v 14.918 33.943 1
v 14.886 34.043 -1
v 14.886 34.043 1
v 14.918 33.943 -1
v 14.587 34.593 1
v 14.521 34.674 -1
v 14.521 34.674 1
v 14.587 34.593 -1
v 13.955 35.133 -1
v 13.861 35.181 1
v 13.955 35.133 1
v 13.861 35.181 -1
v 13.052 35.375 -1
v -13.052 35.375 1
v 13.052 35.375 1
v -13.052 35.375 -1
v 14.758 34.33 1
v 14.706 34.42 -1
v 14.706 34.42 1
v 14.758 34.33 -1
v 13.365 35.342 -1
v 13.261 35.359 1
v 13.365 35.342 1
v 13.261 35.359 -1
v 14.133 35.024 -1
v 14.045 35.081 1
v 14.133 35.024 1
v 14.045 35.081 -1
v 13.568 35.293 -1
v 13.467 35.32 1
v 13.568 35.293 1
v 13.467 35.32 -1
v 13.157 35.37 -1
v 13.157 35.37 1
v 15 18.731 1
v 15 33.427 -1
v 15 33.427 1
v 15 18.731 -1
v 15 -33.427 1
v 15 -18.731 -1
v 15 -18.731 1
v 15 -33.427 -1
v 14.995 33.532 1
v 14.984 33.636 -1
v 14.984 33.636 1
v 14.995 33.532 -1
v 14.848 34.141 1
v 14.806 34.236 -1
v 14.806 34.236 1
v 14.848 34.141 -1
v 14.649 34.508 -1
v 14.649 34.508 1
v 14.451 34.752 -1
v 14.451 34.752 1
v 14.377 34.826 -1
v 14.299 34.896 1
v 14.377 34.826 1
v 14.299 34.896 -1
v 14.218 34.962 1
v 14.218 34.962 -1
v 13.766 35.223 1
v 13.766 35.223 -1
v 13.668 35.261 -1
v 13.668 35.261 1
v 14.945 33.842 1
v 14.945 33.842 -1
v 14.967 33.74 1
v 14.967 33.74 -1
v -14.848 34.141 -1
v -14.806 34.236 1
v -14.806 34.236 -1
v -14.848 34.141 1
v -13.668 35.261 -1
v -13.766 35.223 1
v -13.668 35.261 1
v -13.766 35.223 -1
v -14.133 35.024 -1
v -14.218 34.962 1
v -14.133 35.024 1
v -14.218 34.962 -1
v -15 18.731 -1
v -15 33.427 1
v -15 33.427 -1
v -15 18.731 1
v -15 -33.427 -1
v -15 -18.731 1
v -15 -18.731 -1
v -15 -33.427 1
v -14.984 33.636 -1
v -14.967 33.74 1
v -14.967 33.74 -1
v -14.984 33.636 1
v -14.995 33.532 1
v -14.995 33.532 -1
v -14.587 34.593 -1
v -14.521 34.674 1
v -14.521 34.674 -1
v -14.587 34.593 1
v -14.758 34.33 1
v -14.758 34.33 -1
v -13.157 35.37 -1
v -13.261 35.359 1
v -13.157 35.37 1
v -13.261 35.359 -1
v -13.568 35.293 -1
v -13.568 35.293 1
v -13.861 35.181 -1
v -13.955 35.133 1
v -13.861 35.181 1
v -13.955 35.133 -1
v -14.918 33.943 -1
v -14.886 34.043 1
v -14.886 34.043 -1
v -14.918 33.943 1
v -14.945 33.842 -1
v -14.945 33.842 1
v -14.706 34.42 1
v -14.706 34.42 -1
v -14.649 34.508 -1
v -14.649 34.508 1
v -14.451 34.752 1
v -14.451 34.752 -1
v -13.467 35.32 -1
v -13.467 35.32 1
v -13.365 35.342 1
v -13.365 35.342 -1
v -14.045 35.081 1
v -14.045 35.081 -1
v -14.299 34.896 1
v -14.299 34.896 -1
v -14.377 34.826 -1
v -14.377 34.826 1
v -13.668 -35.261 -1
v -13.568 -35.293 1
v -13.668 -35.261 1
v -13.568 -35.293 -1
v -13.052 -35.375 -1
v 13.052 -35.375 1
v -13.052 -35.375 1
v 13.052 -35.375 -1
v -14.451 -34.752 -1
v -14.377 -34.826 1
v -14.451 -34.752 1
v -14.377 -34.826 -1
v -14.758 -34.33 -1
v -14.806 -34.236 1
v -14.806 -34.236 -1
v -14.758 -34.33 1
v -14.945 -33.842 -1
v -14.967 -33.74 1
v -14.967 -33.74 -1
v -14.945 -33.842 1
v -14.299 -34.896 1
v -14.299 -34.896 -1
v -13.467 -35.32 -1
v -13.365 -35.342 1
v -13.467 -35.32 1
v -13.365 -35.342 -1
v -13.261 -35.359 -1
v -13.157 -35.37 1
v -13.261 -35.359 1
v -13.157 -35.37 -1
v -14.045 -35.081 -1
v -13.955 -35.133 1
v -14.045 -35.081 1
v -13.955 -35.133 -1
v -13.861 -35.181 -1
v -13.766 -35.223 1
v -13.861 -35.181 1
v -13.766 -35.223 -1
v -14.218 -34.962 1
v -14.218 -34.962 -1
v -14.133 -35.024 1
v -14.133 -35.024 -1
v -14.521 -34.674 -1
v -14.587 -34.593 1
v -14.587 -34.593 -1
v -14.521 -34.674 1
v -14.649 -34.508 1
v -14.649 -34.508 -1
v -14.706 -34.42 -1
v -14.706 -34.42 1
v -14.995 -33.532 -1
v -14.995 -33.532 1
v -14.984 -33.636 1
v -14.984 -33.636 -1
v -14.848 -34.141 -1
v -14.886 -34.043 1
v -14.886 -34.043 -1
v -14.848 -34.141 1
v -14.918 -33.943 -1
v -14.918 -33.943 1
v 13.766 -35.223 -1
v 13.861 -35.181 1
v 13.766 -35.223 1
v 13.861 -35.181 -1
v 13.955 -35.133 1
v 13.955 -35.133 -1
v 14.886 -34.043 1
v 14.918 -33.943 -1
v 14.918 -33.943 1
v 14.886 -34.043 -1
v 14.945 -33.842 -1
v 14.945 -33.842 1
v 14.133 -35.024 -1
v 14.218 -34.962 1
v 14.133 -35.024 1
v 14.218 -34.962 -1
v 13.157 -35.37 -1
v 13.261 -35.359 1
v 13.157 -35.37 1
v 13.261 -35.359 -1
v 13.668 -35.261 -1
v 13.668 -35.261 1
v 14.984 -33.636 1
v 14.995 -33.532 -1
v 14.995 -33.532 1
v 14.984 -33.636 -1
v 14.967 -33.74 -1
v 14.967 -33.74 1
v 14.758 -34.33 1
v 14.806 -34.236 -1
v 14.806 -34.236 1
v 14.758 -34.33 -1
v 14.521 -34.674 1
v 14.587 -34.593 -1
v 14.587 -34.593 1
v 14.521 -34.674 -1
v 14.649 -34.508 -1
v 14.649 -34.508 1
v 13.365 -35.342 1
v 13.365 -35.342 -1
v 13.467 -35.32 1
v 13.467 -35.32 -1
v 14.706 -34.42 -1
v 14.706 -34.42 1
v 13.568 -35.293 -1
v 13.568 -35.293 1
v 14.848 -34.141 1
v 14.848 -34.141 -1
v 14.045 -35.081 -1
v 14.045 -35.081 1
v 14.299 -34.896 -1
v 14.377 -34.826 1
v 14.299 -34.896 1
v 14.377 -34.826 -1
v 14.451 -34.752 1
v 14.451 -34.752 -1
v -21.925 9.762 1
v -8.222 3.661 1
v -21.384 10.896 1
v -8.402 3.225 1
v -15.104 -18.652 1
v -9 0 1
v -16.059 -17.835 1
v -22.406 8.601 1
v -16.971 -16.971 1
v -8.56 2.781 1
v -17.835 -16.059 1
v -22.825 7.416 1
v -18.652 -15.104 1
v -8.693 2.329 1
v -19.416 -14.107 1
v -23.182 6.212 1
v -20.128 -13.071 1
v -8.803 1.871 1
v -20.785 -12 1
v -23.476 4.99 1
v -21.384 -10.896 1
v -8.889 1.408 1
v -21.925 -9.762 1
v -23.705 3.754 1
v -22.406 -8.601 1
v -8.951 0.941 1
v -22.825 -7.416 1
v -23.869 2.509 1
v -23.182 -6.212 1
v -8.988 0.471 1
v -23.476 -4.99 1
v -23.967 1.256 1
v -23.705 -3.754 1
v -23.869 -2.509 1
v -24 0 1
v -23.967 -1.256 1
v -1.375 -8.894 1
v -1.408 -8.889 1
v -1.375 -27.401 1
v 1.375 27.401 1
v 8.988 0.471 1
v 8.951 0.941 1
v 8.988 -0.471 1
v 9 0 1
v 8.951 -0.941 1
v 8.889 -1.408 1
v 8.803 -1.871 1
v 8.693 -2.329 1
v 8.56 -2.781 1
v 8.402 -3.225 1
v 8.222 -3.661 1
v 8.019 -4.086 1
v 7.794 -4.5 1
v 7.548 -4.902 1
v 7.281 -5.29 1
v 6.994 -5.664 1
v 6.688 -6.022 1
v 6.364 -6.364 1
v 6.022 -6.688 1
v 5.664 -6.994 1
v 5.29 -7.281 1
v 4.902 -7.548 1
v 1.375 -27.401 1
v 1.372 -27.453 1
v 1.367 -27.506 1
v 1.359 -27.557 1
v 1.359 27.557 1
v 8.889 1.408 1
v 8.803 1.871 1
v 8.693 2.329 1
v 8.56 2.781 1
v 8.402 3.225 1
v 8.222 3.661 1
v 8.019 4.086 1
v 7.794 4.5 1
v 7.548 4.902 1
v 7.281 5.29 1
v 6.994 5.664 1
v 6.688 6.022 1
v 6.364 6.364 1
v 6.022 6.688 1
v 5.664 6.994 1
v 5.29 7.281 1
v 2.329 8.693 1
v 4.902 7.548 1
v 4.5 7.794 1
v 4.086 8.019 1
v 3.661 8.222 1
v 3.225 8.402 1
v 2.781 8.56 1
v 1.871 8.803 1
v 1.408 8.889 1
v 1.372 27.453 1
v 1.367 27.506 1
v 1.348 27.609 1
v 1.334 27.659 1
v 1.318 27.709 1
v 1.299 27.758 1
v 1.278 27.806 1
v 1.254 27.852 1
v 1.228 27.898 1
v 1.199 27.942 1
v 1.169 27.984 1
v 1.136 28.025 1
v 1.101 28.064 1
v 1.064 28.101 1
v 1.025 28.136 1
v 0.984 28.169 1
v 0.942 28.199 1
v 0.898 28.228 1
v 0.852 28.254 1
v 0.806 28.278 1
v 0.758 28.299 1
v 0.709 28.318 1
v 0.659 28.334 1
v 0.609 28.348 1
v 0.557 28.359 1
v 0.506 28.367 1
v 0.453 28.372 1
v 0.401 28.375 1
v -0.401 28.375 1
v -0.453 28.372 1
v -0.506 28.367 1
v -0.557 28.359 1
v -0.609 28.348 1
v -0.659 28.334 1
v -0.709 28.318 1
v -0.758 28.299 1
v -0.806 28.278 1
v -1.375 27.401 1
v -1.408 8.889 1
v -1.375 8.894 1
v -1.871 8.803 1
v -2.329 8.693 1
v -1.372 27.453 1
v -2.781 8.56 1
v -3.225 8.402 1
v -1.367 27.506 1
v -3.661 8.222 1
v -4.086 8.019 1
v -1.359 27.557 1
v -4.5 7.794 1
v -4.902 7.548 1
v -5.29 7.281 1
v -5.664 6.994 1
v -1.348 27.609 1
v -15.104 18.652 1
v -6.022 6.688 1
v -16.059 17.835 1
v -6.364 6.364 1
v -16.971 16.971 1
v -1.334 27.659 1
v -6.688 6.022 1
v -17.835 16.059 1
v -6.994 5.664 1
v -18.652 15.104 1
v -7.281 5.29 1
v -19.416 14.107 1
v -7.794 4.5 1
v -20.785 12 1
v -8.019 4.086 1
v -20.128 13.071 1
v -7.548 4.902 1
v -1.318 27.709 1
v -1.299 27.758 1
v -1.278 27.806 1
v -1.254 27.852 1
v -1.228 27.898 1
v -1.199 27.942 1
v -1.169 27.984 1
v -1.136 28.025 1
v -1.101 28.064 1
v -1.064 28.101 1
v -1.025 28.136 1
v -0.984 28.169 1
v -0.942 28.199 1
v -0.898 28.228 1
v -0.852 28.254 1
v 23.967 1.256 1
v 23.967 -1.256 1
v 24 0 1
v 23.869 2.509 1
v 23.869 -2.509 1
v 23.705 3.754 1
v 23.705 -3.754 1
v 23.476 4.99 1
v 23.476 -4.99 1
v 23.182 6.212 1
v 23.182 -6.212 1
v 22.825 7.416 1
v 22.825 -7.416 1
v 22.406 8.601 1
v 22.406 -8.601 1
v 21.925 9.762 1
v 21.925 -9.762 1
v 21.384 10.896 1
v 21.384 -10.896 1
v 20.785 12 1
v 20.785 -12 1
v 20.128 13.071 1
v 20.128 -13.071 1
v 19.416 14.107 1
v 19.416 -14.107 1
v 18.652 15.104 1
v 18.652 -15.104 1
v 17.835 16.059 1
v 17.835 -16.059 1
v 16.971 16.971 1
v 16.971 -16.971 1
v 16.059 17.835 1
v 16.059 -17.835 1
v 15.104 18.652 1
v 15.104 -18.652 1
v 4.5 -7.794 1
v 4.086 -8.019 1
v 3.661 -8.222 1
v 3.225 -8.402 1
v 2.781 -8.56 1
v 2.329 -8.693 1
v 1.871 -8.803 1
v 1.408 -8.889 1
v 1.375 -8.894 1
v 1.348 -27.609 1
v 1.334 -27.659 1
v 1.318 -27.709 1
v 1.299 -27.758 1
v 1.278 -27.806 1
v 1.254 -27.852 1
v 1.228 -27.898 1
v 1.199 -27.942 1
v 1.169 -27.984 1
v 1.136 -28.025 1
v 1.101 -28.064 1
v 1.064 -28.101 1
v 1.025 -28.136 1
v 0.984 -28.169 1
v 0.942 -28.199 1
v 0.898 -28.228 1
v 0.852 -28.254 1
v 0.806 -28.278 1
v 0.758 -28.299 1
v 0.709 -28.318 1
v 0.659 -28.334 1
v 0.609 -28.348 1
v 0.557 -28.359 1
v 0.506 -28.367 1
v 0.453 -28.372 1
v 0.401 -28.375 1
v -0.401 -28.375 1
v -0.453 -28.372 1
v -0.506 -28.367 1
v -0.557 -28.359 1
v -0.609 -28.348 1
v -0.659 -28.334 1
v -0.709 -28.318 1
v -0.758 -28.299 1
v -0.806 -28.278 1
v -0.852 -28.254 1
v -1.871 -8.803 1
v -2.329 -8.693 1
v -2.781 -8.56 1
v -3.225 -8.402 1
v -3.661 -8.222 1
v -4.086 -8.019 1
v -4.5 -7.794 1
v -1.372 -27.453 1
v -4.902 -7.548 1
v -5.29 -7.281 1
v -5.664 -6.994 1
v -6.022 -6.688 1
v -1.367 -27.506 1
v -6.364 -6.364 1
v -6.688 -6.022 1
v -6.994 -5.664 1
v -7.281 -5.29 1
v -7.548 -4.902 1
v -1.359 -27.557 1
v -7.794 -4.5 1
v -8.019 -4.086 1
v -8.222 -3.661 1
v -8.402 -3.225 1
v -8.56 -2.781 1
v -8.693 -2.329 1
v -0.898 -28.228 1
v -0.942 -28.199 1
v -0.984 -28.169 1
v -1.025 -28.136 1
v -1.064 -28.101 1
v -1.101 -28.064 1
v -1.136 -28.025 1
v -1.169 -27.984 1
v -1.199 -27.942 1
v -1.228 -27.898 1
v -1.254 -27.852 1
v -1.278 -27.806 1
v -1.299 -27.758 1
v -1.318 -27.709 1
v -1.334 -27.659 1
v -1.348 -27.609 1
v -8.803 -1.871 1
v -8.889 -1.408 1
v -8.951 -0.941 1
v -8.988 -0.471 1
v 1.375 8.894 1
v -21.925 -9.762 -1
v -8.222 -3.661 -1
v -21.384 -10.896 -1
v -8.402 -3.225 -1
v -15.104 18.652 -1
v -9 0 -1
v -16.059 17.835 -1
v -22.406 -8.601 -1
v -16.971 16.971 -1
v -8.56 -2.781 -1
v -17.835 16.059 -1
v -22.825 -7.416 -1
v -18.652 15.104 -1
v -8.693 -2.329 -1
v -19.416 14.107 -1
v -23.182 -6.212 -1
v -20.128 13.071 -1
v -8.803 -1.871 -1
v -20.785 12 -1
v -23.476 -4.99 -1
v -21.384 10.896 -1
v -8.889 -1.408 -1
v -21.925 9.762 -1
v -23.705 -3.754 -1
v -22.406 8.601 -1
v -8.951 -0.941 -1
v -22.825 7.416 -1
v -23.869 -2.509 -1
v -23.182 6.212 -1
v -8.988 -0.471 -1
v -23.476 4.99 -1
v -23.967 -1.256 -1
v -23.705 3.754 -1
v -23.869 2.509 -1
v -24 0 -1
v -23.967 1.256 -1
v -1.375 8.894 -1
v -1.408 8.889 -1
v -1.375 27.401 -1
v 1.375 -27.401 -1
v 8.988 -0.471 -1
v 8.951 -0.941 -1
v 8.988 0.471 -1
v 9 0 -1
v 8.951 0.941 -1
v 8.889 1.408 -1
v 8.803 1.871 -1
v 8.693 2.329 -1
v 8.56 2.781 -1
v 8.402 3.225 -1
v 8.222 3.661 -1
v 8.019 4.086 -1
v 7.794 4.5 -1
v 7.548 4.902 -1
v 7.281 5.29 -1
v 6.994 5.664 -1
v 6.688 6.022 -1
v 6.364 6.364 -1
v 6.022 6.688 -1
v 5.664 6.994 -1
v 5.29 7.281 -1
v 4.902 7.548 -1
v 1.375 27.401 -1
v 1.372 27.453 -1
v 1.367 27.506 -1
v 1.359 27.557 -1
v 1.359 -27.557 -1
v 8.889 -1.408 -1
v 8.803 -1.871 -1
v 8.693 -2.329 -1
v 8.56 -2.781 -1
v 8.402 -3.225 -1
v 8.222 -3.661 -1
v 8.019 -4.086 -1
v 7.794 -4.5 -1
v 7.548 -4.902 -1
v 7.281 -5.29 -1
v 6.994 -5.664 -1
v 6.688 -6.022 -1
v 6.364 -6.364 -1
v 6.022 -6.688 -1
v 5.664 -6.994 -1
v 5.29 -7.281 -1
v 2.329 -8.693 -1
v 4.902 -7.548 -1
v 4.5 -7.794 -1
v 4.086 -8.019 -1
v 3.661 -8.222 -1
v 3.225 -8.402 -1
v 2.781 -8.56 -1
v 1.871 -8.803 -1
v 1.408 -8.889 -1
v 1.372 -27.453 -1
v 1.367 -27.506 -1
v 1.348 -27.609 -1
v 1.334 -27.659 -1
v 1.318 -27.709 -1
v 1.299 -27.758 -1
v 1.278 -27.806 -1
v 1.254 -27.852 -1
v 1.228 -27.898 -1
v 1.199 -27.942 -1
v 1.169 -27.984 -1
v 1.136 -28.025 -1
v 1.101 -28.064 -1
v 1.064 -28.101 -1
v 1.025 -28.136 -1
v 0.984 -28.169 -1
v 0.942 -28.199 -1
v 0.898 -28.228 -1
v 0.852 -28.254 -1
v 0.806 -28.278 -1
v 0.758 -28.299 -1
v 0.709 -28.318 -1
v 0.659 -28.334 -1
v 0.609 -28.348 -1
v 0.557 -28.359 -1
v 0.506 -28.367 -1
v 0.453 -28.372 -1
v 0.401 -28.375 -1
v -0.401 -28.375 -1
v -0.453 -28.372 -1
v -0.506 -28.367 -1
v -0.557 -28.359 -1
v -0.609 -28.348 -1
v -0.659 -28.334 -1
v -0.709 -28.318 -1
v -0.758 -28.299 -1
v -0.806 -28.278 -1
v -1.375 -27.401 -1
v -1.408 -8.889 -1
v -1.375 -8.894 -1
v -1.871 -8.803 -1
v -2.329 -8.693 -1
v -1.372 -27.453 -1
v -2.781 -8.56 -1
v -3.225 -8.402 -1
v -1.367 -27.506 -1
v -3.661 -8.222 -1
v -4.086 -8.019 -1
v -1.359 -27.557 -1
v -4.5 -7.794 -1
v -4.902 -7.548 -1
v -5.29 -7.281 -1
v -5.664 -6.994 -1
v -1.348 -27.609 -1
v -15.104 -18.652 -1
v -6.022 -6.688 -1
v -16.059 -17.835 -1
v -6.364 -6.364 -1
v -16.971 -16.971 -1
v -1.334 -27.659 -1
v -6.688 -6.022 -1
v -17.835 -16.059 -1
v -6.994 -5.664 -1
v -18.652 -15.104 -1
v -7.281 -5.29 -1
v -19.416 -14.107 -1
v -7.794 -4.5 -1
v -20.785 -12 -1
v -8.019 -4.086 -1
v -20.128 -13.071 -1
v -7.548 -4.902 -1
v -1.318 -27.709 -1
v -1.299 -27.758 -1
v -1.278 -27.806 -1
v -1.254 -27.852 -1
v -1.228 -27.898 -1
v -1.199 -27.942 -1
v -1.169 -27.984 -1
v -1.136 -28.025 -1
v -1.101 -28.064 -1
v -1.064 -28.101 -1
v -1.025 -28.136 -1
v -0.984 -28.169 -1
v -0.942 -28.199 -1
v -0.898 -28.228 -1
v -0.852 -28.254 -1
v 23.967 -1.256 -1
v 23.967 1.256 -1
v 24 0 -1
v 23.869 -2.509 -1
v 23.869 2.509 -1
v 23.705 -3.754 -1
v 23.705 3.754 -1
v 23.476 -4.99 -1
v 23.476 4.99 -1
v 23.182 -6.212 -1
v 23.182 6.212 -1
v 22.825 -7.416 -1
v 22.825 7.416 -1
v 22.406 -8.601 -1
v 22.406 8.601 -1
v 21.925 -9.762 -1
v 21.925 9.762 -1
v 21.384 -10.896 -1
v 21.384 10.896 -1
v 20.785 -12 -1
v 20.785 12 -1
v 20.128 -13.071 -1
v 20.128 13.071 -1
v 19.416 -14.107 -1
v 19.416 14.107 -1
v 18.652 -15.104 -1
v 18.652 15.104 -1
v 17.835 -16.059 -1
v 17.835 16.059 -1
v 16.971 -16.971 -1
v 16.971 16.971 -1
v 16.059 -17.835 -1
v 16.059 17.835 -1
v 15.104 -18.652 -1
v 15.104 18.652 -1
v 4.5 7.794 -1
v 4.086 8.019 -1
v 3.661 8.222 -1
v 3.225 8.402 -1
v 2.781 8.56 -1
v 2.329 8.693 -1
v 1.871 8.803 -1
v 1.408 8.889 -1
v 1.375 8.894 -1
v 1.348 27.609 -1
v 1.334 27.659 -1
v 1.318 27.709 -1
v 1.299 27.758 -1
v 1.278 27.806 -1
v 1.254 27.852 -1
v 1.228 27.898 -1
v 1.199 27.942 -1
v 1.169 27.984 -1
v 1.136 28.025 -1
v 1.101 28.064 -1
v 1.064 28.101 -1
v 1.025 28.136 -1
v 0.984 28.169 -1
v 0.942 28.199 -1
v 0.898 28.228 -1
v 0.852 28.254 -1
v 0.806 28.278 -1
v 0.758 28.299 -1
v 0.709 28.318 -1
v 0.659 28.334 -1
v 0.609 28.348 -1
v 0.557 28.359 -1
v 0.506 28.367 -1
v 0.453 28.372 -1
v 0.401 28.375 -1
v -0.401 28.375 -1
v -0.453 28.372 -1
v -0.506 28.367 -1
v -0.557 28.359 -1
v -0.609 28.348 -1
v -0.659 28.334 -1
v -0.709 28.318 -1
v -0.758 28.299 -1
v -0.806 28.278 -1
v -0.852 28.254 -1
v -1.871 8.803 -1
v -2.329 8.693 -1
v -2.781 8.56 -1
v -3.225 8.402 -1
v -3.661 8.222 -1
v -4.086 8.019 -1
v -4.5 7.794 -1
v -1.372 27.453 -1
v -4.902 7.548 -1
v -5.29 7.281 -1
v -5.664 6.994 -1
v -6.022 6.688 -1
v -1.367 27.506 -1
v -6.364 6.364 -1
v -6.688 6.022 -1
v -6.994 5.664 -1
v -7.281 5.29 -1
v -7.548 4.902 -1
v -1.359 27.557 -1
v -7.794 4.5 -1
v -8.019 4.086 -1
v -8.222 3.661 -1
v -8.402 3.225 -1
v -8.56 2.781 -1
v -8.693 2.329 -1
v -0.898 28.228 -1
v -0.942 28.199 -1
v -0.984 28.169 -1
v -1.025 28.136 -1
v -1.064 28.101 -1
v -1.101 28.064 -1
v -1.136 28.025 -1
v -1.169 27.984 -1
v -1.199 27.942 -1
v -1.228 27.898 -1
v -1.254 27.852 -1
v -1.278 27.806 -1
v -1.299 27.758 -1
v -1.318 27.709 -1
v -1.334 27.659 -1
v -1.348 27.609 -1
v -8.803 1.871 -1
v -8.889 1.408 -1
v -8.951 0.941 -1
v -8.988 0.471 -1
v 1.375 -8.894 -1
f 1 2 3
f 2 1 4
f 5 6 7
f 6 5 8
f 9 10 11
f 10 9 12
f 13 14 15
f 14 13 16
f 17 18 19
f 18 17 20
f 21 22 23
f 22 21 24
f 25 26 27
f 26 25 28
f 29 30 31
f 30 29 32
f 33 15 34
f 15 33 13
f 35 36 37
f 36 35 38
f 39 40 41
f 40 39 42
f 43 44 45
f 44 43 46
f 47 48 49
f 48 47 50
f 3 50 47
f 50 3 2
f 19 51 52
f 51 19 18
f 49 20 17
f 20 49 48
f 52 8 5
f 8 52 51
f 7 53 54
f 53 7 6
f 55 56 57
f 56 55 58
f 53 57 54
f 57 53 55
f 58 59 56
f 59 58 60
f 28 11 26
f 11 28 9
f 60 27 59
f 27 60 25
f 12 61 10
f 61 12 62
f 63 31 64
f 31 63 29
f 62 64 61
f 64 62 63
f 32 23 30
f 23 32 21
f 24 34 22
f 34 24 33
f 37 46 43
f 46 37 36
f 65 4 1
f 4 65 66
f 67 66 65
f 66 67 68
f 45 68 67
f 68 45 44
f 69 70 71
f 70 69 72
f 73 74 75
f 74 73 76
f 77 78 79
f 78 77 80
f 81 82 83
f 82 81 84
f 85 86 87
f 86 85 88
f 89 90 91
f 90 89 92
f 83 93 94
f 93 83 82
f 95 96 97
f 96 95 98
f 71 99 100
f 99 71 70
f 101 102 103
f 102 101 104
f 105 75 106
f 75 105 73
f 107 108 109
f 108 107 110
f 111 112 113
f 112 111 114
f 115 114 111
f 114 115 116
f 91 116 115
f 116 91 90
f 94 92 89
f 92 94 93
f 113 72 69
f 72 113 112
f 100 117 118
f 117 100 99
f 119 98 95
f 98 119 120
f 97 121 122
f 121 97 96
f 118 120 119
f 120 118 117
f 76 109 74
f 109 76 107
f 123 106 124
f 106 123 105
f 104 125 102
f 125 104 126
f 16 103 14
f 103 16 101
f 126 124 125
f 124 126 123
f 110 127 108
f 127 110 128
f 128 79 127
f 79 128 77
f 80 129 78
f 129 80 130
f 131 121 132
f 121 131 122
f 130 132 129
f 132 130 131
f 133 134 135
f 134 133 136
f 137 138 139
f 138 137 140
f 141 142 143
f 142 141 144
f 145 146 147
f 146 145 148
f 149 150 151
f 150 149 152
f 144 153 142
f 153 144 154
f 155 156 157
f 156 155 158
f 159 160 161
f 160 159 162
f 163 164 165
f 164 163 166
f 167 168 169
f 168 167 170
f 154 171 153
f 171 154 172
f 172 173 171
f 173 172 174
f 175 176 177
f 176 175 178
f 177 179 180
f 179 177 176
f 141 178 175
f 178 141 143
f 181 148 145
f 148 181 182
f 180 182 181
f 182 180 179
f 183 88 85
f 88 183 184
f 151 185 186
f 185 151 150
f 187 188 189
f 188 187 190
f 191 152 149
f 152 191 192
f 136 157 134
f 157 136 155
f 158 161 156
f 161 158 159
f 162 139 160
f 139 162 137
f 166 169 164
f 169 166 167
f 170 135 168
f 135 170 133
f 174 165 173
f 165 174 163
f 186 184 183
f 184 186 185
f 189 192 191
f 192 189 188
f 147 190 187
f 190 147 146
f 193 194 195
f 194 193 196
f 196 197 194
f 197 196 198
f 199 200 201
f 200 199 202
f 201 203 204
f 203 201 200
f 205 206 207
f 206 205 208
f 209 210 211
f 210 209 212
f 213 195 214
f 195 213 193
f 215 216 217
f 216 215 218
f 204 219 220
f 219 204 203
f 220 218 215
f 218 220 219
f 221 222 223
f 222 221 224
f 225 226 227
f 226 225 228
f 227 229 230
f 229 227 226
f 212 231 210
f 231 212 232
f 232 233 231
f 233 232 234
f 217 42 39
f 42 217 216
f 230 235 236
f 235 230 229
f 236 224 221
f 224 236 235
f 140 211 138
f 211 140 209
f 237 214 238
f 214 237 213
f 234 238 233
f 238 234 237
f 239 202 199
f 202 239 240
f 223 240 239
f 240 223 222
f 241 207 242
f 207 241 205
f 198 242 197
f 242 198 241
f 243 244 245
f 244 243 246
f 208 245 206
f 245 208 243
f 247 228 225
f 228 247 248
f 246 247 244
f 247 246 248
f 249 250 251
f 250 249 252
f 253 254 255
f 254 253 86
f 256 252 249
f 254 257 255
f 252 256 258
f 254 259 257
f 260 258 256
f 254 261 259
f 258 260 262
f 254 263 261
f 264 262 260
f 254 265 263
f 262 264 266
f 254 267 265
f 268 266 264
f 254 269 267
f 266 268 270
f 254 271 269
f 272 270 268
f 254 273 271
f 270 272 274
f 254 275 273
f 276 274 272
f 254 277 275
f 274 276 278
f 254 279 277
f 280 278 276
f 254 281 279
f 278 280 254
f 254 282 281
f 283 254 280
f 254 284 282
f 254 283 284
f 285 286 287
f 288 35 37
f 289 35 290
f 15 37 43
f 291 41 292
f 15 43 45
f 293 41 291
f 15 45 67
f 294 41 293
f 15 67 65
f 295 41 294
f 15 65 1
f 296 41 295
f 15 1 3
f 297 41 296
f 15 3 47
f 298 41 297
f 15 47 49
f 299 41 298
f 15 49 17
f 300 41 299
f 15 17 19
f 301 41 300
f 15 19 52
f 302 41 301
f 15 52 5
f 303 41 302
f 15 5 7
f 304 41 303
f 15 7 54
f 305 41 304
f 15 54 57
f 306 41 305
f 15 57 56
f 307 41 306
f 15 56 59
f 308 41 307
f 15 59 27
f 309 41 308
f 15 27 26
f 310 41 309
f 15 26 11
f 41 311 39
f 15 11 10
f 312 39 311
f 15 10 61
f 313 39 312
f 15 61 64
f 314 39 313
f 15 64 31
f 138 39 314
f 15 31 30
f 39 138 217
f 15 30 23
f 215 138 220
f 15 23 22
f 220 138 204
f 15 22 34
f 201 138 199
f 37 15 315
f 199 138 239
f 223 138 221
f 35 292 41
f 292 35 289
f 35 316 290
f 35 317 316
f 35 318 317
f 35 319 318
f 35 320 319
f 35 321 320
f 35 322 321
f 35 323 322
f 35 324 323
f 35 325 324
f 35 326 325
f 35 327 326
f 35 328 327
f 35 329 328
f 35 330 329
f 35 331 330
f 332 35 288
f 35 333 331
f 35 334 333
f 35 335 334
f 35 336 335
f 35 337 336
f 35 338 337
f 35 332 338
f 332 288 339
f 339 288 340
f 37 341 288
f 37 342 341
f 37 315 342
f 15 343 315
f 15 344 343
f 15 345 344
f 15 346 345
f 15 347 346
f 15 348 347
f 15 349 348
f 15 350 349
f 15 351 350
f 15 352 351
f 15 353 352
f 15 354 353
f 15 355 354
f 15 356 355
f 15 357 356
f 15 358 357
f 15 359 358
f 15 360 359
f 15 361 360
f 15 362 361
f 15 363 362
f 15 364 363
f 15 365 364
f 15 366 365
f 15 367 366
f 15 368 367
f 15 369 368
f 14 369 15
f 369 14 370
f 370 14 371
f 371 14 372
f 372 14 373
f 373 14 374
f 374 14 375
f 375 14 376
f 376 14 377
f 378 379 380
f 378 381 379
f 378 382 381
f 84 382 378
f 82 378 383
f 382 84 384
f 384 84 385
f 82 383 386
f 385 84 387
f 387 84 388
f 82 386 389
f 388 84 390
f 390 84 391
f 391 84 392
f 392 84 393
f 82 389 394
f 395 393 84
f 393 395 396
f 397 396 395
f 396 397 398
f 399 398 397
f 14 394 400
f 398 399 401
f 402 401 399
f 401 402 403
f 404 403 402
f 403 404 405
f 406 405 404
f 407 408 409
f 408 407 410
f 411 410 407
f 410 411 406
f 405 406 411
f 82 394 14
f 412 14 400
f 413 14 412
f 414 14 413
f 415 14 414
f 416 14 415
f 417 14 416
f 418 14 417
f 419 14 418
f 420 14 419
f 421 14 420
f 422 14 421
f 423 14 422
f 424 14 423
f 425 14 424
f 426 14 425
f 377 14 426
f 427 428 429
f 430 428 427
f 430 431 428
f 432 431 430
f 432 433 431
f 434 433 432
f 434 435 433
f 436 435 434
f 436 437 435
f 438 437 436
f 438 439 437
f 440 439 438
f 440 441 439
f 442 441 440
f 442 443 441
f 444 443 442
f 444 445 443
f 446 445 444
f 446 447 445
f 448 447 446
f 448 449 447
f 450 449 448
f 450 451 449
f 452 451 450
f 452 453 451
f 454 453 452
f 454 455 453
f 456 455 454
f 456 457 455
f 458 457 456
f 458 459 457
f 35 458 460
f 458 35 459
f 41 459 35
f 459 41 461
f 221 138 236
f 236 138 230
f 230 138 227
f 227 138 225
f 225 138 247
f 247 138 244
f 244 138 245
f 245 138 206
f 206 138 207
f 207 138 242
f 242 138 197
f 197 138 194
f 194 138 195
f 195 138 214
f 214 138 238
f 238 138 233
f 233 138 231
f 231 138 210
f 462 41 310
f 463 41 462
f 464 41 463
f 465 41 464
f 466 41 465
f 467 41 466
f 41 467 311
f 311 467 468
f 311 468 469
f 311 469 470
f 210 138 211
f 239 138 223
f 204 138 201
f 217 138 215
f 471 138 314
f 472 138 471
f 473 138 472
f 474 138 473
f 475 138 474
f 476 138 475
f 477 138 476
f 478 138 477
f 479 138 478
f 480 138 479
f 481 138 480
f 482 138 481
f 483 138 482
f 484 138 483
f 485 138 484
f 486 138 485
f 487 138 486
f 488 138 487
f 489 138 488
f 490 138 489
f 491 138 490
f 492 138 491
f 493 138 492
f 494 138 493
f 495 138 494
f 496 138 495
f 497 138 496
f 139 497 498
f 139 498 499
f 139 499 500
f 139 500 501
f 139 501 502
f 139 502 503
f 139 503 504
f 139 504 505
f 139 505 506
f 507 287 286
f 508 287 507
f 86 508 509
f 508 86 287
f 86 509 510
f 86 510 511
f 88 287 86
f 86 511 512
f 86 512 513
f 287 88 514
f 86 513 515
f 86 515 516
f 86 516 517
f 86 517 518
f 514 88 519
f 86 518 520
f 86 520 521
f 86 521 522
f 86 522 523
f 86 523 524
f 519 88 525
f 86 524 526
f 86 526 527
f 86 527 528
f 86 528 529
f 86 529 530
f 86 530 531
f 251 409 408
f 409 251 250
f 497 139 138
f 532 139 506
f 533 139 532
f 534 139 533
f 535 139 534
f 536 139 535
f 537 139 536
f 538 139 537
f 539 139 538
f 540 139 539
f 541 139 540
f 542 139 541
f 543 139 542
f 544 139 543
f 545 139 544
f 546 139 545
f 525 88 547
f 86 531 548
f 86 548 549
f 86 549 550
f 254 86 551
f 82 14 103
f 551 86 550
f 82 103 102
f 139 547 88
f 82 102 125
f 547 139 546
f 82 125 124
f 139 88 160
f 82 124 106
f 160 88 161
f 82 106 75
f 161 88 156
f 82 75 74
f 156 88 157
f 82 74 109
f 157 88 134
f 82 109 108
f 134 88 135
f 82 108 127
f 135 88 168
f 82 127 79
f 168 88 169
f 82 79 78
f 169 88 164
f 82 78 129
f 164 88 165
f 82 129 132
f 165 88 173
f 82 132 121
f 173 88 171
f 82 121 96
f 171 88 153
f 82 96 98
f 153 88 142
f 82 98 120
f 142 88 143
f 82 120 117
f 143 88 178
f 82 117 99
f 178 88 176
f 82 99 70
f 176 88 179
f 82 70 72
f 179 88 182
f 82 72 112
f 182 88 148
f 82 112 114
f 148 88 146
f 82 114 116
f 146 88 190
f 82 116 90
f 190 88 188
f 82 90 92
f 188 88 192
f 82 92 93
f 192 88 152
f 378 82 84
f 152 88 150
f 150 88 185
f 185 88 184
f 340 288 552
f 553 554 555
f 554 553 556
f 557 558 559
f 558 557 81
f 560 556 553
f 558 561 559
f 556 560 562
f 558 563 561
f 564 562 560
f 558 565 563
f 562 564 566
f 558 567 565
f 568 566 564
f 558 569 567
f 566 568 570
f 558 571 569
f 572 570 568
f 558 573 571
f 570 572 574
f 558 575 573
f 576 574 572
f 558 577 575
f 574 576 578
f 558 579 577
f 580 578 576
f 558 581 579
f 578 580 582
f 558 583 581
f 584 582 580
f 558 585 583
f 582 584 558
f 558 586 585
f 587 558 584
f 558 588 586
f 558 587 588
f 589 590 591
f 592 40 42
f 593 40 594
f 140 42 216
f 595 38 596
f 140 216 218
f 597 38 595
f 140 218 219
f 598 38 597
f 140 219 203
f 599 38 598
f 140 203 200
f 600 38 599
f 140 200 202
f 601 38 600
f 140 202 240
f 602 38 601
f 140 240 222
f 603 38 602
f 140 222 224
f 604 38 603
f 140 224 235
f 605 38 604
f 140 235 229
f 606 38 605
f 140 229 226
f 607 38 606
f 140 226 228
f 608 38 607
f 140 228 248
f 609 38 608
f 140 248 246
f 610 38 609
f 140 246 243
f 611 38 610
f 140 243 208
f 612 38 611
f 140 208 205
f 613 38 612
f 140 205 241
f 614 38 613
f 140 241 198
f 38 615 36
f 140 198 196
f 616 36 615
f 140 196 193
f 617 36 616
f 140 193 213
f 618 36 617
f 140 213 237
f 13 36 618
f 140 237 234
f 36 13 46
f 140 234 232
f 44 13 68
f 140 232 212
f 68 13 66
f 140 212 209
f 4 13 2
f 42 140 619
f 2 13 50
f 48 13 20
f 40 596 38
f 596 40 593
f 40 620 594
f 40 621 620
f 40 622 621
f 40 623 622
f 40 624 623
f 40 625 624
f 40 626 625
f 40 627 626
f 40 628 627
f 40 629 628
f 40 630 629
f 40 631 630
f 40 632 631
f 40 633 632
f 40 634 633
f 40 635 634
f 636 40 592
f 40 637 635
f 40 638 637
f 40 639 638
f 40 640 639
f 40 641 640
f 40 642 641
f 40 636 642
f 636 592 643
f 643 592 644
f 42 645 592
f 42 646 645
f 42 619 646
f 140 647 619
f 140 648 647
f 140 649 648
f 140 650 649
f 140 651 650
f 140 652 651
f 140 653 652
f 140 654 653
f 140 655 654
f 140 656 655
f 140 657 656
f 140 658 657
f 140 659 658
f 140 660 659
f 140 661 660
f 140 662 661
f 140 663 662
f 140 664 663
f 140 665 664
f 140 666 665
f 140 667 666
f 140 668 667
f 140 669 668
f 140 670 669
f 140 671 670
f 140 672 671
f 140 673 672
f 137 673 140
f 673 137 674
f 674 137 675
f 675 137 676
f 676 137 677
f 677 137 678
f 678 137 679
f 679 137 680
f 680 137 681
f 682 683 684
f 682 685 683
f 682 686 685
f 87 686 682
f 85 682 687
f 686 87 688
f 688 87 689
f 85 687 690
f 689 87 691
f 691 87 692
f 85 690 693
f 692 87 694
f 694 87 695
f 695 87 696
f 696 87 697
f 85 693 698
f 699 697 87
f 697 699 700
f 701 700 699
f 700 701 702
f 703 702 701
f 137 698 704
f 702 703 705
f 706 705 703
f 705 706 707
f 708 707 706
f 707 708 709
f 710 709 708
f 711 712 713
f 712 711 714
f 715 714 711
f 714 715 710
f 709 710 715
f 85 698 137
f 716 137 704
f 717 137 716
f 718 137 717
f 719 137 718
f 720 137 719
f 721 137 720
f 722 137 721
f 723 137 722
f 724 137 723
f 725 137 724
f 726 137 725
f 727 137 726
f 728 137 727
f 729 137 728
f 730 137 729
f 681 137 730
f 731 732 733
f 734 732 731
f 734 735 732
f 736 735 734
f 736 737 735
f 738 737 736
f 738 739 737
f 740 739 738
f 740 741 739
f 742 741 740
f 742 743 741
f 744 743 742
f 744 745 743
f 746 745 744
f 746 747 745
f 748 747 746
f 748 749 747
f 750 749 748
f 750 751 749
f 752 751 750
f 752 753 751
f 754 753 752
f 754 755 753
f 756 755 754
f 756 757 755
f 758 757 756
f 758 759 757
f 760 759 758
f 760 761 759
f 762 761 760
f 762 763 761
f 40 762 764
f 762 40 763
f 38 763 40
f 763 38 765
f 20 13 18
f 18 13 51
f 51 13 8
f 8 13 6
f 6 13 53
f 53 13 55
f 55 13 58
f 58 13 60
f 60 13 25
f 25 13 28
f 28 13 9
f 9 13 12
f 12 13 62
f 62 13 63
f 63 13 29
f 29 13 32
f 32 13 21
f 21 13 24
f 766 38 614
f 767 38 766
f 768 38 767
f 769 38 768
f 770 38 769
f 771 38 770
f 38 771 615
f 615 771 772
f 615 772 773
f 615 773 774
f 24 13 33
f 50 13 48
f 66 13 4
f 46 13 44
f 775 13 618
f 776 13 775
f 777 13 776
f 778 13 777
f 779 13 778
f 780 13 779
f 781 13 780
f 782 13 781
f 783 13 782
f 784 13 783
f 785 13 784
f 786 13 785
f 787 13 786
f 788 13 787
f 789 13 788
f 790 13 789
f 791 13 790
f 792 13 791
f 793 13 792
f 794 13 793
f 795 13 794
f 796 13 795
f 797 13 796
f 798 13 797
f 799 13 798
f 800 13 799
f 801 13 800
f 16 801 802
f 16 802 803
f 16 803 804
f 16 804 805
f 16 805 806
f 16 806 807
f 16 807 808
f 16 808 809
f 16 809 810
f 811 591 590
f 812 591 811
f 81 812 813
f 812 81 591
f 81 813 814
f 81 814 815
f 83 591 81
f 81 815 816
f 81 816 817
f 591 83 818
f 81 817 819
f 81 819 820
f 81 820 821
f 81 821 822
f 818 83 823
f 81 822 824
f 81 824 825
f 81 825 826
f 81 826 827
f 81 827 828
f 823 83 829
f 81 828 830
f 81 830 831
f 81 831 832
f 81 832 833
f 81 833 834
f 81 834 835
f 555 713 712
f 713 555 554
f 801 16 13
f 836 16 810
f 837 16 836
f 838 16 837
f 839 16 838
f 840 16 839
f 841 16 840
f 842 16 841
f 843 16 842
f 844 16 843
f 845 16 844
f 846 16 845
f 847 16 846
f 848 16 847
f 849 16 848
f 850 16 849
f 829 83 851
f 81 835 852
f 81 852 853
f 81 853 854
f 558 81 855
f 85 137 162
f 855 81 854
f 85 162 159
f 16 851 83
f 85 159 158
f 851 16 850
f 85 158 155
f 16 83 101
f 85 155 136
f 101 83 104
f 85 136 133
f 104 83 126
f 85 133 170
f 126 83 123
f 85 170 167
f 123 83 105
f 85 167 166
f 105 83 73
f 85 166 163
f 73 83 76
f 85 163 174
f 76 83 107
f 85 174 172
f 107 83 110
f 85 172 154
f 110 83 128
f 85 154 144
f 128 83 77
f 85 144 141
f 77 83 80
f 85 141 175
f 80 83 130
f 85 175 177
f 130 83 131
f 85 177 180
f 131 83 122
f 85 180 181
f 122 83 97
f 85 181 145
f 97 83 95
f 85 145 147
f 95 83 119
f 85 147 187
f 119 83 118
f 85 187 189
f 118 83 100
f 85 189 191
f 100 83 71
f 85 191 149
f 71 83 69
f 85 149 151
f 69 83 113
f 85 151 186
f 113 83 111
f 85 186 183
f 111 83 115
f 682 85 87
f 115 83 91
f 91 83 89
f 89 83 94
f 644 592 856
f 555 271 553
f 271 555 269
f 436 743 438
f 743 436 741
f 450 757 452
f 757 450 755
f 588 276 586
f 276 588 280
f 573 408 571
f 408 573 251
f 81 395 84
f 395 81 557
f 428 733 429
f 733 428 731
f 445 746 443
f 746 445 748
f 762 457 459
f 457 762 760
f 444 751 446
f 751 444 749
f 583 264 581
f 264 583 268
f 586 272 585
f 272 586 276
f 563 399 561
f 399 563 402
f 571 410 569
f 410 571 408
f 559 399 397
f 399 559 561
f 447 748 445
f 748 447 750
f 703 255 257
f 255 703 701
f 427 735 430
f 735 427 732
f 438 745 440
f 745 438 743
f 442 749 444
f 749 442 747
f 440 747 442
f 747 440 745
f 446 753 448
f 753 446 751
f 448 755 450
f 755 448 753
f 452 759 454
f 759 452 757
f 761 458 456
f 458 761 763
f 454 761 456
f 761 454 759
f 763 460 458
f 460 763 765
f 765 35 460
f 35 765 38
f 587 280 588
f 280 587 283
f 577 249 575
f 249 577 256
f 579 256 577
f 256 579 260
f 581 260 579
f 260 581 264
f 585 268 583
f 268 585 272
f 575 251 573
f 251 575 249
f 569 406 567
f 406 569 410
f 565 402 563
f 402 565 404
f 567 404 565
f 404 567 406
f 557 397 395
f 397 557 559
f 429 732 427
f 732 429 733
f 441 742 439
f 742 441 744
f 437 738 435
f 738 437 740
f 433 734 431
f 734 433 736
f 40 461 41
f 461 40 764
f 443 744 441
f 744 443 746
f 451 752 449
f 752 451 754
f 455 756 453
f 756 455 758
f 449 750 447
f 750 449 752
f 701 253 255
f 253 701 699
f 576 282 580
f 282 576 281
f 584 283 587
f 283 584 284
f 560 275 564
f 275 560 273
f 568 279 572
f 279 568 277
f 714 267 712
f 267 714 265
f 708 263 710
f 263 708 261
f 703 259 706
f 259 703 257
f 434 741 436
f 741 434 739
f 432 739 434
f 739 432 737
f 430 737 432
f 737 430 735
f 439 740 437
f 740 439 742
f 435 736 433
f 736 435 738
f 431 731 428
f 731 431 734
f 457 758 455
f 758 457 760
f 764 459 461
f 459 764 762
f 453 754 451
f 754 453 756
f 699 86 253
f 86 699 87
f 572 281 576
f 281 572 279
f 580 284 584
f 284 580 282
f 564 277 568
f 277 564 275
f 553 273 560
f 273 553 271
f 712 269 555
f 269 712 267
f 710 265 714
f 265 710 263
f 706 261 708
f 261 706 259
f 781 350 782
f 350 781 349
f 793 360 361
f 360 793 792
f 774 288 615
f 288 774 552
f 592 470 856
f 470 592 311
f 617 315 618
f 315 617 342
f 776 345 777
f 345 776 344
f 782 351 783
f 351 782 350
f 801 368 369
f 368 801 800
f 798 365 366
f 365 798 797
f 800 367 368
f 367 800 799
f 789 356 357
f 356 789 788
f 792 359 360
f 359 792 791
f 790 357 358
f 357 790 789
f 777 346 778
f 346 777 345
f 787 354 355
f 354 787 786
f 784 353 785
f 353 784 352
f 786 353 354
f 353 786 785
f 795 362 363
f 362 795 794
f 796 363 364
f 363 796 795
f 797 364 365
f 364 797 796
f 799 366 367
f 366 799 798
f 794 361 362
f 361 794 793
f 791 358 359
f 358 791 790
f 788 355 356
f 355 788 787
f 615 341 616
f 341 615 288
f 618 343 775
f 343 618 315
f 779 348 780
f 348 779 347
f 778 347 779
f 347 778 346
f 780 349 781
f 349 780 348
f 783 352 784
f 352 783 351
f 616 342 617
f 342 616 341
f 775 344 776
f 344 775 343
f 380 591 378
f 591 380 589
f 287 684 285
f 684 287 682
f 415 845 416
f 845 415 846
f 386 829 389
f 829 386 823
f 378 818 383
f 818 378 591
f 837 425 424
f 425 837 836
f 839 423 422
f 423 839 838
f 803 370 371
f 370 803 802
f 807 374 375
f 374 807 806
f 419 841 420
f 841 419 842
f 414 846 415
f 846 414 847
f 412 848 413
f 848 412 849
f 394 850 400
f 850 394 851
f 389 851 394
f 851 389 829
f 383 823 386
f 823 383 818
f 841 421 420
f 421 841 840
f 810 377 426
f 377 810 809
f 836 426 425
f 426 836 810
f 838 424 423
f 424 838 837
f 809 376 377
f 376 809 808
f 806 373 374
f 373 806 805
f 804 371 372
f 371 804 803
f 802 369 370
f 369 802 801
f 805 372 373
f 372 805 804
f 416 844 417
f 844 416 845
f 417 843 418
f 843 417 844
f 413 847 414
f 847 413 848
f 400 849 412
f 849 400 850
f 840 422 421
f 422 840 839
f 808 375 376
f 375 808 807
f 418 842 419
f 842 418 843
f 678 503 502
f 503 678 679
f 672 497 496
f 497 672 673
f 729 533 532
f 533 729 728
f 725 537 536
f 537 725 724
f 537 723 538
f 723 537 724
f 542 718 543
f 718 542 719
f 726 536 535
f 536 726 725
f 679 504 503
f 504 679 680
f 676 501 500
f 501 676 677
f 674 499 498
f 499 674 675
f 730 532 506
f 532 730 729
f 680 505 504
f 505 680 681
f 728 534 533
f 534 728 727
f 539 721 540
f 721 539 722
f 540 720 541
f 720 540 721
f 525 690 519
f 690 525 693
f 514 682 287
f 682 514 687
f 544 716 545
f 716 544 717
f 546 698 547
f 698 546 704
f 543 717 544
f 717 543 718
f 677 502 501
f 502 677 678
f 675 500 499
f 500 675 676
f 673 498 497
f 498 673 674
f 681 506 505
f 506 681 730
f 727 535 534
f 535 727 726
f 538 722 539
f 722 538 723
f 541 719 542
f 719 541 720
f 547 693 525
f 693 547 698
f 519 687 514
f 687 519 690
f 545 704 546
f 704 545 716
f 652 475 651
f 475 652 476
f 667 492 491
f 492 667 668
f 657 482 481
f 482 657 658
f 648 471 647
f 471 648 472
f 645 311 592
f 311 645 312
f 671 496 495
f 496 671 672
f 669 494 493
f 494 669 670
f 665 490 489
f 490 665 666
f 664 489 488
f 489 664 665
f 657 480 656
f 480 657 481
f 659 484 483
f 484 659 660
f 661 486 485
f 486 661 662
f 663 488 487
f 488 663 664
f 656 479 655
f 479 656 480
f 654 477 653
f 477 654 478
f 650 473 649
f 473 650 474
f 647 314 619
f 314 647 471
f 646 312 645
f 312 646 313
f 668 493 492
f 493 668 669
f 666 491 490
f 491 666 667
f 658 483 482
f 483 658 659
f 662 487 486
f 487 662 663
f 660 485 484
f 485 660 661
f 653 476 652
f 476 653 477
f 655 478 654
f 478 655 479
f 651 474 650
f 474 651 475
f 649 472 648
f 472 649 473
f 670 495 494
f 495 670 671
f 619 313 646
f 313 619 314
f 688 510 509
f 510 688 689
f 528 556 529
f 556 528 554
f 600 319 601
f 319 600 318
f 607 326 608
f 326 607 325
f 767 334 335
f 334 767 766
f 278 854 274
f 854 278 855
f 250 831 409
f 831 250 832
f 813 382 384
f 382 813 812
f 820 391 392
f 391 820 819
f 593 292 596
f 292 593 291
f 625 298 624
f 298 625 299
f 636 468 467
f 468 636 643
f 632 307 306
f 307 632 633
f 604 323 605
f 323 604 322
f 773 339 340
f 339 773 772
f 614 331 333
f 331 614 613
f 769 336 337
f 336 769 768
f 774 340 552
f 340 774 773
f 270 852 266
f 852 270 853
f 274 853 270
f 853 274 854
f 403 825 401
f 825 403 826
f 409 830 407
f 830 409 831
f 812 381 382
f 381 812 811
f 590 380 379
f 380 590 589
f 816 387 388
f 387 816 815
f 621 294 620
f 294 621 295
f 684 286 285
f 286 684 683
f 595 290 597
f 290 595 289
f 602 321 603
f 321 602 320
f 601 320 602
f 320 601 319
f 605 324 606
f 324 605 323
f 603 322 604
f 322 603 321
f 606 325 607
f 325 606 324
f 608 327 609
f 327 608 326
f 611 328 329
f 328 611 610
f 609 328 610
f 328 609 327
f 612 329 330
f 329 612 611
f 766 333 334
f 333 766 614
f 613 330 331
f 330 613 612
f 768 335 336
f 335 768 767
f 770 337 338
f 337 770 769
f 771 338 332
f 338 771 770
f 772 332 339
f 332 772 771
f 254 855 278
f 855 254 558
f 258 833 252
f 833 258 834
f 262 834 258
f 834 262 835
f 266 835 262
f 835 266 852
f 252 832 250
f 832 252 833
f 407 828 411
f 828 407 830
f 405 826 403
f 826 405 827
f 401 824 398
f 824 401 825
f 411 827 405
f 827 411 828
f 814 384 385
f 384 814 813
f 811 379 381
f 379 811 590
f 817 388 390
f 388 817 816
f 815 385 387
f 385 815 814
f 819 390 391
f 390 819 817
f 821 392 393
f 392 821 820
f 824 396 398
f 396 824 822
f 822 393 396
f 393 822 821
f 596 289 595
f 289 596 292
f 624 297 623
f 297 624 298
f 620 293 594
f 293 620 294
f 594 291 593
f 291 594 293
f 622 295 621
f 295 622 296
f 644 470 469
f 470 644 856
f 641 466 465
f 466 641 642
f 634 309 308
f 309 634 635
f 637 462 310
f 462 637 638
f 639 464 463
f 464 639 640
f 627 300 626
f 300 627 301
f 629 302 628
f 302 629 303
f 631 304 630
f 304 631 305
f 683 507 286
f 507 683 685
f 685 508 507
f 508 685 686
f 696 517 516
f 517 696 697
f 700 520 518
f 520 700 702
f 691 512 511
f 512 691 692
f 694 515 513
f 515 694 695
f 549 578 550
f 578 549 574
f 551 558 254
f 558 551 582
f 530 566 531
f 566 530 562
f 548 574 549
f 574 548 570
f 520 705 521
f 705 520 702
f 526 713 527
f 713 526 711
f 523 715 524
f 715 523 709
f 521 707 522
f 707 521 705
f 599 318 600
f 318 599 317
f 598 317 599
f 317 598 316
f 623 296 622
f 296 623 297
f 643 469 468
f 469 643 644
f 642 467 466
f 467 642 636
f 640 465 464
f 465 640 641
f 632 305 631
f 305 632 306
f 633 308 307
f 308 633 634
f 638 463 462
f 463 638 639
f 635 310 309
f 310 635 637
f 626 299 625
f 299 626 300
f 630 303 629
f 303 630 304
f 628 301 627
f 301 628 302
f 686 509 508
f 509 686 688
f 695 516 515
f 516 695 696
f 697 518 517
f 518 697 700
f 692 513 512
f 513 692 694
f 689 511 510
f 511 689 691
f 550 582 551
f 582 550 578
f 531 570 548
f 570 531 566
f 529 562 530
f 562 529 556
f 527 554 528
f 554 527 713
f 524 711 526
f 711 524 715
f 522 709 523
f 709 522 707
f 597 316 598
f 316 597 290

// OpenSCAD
include <BOSL/constants.scad>
use <BOSL/shapes.scad>
use <BOSL/transforms.scad>
use <BOSL/masks.scad>

$fn=120; //circle smoothness
overlap = 1;

bracketXY=70.75;
bracketWidth = 30;
bracketThickness = 2;
slotWidth = 2.75;
centerHole = 18;

bracket();


module bracket() {
 
difference() {   
    bracketCore();
    bracketSlots();
}
}//bracket


module bracketCore() {
  union() {
    color("yellowgreen") cuboid([bracketWidth, bracketXY, bracketThickness], fillet=2, edges=EDGES_Z_ALL); // core shape
    color("yellowgreen") cyl(h=bracketThickness, d=bracketWidth+centerHole); // additional support
  }
}


module bracketSlots() {
  
    color("orange") cuboid([slotWidth, bracketXY-14, bracketThickness+overlap], fillet=1, edges=EDGES_Z_ALL);
    color("tomato") cyl(d=centerHole, h=bracketThickness+overlap);
    // this will create an oval: scale([1, 2, 1]) 
  
    //back((bracketXY/2)-3) color("tomato") cyl(d=slotWidth, h=bracketThickness+overlap);
    //forward((bracketXY/2)-3) color("tomato") cyl(d=slotWidth, h=bracketThickness+overlap);
  
}

module sliderIn() {

  difference() {
    union() {
      color("pink") cylinder (h=3.6, d=40); //inside retainer disc
      cylinder(h=3.6+enclosureTopThickness, d=14); // hub. the +2.5 is the thickness of the enclosure top
      //alignment pins & additional support
      left(5) color("sienna") cylinder(h=3.6+enclosureTopThickness+4, d=3); // alignment pin
      right(5) color("sienna") cylinder(h=3.6+enclosureTopThickness+4, d=3); // alignment pin
    }
    
    //Socket for Ball/tip of joystick
    //zrot(0) up(3) cuboid([4.1,3.1,10], fillet=.5); //shaft cutout
    cylinder(h=4, d=3.3);
    down(.5) sphere(d=4.3); // socket
    
    //mount/assembly screws
    forward(5) cylinder(h=10, d=2.5); // mount screw hole
    back(5) cylinder(h=10, d=2.5); // mount screw hole

  }  
  
  
  
}//sliderIn


module sliderOut() {  
  difference(){
    
    foamCutout = 51; // 2"
    discDiameter = foamCutout+12;
    
    color("lime") cylinder(h=5, d=discDiameter); //disc
    
      color("pink") up(6) fillet_cylinder_mask(r=discDiameter/2, fillet=9); //disc round over
      color("aqua") up(4) cylinder(h=2, d=foamCutout); //foam cutout

      forward(5) color("orange") cylinder(d=2.5, h=10); // mounting screw
      forward(5) up(4-2.6) color("tomato") cylinder(h=2.6, d=4.6); // countersink
      back(5) color("orange") cylinder(d=2.5, h=10); // mounting screw
      back(5) up(4-2.6) color("tomato") cylinder(h=2.6, d=4.6); // countersink

      //alignment holes (pins fit in)
      left(5) color("khaki") cylinder(h=10, d=3.1);
      right(5) color("khaki") cylinder(h=10, d=3.1);


  }//difference
}//sliderOut
